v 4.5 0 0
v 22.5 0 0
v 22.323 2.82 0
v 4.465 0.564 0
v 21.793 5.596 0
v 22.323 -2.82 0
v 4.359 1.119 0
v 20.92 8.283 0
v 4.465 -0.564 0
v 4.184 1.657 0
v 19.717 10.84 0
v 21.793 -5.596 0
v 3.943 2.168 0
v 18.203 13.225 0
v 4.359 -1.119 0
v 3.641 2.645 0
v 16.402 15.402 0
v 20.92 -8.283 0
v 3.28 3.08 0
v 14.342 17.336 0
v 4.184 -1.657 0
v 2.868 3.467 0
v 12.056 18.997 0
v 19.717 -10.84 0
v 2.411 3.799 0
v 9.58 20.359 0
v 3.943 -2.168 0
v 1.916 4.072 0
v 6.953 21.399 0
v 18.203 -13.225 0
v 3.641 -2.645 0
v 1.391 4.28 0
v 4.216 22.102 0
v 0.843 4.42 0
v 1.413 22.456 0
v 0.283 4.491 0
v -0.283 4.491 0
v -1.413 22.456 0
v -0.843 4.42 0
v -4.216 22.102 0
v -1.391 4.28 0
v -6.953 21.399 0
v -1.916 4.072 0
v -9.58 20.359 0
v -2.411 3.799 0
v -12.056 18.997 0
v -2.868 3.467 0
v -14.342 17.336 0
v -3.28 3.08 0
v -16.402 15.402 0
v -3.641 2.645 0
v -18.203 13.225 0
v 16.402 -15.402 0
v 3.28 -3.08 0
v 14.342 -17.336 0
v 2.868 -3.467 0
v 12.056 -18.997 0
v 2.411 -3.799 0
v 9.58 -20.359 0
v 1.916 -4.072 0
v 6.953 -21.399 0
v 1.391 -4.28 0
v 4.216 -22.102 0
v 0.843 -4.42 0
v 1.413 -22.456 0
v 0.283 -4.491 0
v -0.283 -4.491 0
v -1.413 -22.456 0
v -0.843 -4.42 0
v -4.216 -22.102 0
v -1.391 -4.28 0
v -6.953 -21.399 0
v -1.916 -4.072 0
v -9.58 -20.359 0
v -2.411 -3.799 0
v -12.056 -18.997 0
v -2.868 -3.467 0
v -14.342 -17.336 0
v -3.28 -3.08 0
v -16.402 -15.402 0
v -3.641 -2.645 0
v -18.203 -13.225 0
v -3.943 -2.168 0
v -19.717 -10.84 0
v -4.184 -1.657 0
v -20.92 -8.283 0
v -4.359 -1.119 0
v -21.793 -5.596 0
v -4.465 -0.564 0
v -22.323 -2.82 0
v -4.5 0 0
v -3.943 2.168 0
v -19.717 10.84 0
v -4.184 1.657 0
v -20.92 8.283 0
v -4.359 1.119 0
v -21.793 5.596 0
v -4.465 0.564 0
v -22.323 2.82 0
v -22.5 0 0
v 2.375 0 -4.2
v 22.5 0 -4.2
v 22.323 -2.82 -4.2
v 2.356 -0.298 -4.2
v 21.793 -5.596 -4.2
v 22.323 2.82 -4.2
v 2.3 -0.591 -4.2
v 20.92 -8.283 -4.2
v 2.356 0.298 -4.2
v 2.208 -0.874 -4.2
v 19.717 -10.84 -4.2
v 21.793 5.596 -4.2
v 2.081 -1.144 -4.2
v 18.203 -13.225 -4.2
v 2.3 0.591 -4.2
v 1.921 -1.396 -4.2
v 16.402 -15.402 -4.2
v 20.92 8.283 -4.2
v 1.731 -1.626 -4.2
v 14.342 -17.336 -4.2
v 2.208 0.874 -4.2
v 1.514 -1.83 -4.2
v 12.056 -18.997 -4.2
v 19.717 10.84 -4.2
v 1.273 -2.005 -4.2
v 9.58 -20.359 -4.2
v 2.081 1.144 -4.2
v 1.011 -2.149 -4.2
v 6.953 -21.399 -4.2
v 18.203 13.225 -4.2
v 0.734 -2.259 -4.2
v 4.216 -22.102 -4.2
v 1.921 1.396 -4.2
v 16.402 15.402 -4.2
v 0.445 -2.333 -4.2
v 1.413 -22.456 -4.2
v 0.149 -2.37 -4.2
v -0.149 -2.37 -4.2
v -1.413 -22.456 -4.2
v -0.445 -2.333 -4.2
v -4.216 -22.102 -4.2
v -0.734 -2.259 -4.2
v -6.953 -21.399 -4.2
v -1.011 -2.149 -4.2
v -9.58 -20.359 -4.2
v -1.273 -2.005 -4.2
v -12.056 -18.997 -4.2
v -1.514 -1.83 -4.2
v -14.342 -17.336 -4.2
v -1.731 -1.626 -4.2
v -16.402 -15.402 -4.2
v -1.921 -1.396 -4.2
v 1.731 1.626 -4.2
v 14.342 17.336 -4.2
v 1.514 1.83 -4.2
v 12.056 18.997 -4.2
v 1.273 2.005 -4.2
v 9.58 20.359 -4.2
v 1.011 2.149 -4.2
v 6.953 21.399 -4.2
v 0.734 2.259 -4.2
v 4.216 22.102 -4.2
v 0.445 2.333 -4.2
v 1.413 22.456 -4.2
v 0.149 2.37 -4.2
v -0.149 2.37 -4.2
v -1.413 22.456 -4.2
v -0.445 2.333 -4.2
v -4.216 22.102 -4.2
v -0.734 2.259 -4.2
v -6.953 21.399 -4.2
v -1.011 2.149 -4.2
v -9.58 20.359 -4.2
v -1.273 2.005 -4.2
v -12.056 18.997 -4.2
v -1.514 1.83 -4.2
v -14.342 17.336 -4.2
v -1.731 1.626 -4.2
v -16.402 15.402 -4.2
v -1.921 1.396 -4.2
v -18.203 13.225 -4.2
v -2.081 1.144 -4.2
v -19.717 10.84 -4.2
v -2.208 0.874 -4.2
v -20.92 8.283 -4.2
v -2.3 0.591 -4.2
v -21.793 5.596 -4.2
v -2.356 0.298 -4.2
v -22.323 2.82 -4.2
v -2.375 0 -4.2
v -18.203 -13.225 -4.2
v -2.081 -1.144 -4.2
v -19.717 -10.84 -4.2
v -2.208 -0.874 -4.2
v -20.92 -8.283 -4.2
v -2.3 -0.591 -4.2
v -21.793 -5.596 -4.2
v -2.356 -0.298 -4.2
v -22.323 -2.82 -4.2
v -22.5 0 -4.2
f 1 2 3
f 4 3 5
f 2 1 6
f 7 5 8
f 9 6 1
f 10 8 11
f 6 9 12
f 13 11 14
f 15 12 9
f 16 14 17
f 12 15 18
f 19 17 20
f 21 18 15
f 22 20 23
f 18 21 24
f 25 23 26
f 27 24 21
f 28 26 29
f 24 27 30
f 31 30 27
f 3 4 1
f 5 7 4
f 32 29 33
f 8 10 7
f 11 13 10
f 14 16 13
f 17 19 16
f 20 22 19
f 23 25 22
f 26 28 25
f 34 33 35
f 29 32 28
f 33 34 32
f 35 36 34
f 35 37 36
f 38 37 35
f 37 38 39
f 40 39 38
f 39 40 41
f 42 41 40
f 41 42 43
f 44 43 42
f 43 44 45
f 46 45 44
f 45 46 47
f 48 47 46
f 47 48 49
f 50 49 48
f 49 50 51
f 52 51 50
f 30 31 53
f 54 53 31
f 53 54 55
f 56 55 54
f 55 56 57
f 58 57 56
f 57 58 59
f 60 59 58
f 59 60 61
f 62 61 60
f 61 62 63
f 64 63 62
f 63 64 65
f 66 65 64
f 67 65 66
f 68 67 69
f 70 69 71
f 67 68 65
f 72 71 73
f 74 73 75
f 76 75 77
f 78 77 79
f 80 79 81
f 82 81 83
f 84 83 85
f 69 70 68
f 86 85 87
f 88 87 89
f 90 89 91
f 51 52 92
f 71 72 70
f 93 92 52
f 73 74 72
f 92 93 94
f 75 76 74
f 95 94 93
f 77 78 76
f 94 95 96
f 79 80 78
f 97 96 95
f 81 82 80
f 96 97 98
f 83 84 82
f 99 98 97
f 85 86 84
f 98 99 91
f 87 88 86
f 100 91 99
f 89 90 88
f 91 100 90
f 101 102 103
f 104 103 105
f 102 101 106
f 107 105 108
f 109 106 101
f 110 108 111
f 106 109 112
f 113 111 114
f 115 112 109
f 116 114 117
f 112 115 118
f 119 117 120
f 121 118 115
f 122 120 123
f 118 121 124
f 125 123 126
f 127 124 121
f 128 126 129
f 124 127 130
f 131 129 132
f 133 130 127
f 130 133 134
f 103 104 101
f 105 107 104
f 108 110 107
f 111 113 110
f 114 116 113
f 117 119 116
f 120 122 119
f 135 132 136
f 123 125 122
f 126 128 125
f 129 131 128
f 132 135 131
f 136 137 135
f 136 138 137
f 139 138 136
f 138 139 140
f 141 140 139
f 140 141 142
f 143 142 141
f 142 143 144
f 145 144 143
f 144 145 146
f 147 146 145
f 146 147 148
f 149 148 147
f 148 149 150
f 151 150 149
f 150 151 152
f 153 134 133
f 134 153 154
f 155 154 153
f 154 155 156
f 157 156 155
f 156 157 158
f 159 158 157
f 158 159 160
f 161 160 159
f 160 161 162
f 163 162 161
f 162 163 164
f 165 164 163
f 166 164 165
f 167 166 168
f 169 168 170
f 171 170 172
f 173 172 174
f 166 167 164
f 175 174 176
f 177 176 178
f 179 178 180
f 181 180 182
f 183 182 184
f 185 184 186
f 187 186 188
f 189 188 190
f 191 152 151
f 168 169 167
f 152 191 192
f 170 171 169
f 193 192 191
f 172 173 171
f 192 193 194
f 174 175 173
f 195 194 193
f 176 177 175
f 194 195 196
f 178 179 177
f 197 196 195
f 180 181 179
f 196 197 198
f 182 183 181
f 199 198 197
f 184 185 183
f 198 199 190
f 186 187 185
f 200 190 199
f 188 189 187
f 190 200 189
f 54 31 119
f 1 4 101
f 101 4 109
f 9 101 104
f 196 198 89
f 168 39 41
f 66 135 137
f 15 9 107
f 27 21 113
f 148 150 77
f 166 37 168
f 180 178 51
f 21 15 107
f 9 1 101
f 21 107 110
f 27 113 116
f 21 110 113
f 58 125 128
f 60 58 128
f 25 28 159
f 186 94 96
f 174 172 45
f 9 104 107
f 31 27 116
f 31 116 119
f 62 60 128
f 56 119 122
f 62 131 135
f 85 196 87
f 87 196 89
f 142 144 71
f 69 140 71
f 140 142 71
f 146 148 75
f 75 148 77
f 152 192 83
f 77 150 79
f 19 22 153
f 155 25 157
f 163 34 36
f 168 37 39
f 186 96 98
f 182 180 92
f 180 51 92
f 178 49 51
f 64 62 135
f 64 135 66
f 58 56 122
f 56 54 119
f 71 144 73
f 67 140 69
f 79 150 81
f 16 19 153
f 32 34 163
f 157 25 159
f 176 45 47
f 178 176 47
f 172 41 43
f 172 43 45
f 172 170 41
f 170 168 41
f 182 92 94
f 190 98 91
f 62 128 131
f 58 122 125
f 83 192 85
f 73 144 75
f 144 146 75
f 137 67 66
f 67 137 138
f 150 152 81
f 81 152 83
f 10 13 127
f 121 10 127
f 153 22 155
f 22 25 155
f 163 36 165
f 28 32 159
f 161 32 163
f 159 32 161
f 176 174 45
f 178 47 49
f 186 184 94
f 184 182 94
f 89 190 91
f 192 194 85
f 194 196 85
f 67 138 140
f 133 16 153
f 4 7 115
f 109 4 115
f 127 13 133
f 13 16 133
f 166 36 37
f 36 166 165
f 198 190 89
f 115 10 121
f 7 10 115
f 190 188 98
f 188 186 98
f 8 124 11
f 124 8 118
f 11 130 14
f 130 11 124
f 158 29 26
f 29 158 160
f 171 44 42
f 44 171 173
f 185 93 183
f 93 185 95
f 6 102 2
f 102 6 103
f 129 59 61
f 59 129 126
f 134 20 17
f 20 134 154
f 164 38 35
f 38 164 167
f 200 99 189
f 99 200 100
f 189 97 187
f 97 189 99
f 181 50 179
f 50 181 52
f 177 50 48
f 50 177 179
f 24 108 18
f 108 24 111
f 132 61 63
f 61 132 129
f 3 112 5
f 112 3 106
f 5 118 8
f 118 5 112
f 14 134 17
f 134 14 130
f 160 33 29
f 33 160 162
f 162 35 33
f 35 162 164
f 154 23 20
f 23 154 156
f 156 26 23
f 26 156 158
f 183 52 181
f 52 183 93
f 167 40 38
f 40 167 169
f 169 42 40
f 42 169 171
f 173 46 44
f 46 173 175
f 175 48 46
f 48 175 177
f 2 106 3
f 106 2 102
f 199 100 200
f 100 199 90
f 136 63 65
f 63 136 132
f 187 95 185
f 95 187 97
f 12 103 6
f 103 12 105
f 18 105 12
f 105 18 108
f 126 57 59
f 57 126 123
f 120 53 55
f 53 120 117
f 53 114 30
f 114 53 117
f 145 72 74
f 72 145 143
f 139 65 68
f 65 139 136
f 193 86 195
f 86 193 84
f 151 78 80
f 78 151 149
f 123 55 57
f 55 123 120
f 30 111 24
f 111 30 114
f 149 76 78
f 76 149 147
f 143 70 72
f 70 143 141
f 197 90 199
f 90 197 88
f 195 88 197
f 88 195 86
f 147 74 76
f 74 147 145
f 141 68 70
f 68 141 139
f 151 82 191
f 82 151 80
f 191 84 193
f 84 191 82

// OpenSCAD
$fn = 50;


difference() {
	union() {
		translate(v = [0, 0, -4.2000000000]) {
			cylinder(h = 4.2000000000, r = 22.5000000000);
		}
	}
	union() {
		translate(v = [0, 0, 0]) {
			rotate(a = [0, 0, 0]) {
				difference() {
					union() {
						#translate(v = [0, 0, -4.2000000000]) {
							cylinder(h = 4.2000000000, r = 2.2500000000);
						}
						#translate(v = [0, 0, -4.2000000000]) {
							cylinder(h = 4.2000000000, r1 = 2.3750000000, r2 = 4.5000000000);
						}
						#translate(v = [0, 0, -4.2000000000]) {
							cylinder(h = 4.2000000000, r = 2.3750000000);
						}
						#translate(v = [0, 0, -4.2000000000]) {
							cylinder(h = 4.2000000000, r = 2.2500000000);
						}
					}
					union();
				}
			}
		}
	}
}
